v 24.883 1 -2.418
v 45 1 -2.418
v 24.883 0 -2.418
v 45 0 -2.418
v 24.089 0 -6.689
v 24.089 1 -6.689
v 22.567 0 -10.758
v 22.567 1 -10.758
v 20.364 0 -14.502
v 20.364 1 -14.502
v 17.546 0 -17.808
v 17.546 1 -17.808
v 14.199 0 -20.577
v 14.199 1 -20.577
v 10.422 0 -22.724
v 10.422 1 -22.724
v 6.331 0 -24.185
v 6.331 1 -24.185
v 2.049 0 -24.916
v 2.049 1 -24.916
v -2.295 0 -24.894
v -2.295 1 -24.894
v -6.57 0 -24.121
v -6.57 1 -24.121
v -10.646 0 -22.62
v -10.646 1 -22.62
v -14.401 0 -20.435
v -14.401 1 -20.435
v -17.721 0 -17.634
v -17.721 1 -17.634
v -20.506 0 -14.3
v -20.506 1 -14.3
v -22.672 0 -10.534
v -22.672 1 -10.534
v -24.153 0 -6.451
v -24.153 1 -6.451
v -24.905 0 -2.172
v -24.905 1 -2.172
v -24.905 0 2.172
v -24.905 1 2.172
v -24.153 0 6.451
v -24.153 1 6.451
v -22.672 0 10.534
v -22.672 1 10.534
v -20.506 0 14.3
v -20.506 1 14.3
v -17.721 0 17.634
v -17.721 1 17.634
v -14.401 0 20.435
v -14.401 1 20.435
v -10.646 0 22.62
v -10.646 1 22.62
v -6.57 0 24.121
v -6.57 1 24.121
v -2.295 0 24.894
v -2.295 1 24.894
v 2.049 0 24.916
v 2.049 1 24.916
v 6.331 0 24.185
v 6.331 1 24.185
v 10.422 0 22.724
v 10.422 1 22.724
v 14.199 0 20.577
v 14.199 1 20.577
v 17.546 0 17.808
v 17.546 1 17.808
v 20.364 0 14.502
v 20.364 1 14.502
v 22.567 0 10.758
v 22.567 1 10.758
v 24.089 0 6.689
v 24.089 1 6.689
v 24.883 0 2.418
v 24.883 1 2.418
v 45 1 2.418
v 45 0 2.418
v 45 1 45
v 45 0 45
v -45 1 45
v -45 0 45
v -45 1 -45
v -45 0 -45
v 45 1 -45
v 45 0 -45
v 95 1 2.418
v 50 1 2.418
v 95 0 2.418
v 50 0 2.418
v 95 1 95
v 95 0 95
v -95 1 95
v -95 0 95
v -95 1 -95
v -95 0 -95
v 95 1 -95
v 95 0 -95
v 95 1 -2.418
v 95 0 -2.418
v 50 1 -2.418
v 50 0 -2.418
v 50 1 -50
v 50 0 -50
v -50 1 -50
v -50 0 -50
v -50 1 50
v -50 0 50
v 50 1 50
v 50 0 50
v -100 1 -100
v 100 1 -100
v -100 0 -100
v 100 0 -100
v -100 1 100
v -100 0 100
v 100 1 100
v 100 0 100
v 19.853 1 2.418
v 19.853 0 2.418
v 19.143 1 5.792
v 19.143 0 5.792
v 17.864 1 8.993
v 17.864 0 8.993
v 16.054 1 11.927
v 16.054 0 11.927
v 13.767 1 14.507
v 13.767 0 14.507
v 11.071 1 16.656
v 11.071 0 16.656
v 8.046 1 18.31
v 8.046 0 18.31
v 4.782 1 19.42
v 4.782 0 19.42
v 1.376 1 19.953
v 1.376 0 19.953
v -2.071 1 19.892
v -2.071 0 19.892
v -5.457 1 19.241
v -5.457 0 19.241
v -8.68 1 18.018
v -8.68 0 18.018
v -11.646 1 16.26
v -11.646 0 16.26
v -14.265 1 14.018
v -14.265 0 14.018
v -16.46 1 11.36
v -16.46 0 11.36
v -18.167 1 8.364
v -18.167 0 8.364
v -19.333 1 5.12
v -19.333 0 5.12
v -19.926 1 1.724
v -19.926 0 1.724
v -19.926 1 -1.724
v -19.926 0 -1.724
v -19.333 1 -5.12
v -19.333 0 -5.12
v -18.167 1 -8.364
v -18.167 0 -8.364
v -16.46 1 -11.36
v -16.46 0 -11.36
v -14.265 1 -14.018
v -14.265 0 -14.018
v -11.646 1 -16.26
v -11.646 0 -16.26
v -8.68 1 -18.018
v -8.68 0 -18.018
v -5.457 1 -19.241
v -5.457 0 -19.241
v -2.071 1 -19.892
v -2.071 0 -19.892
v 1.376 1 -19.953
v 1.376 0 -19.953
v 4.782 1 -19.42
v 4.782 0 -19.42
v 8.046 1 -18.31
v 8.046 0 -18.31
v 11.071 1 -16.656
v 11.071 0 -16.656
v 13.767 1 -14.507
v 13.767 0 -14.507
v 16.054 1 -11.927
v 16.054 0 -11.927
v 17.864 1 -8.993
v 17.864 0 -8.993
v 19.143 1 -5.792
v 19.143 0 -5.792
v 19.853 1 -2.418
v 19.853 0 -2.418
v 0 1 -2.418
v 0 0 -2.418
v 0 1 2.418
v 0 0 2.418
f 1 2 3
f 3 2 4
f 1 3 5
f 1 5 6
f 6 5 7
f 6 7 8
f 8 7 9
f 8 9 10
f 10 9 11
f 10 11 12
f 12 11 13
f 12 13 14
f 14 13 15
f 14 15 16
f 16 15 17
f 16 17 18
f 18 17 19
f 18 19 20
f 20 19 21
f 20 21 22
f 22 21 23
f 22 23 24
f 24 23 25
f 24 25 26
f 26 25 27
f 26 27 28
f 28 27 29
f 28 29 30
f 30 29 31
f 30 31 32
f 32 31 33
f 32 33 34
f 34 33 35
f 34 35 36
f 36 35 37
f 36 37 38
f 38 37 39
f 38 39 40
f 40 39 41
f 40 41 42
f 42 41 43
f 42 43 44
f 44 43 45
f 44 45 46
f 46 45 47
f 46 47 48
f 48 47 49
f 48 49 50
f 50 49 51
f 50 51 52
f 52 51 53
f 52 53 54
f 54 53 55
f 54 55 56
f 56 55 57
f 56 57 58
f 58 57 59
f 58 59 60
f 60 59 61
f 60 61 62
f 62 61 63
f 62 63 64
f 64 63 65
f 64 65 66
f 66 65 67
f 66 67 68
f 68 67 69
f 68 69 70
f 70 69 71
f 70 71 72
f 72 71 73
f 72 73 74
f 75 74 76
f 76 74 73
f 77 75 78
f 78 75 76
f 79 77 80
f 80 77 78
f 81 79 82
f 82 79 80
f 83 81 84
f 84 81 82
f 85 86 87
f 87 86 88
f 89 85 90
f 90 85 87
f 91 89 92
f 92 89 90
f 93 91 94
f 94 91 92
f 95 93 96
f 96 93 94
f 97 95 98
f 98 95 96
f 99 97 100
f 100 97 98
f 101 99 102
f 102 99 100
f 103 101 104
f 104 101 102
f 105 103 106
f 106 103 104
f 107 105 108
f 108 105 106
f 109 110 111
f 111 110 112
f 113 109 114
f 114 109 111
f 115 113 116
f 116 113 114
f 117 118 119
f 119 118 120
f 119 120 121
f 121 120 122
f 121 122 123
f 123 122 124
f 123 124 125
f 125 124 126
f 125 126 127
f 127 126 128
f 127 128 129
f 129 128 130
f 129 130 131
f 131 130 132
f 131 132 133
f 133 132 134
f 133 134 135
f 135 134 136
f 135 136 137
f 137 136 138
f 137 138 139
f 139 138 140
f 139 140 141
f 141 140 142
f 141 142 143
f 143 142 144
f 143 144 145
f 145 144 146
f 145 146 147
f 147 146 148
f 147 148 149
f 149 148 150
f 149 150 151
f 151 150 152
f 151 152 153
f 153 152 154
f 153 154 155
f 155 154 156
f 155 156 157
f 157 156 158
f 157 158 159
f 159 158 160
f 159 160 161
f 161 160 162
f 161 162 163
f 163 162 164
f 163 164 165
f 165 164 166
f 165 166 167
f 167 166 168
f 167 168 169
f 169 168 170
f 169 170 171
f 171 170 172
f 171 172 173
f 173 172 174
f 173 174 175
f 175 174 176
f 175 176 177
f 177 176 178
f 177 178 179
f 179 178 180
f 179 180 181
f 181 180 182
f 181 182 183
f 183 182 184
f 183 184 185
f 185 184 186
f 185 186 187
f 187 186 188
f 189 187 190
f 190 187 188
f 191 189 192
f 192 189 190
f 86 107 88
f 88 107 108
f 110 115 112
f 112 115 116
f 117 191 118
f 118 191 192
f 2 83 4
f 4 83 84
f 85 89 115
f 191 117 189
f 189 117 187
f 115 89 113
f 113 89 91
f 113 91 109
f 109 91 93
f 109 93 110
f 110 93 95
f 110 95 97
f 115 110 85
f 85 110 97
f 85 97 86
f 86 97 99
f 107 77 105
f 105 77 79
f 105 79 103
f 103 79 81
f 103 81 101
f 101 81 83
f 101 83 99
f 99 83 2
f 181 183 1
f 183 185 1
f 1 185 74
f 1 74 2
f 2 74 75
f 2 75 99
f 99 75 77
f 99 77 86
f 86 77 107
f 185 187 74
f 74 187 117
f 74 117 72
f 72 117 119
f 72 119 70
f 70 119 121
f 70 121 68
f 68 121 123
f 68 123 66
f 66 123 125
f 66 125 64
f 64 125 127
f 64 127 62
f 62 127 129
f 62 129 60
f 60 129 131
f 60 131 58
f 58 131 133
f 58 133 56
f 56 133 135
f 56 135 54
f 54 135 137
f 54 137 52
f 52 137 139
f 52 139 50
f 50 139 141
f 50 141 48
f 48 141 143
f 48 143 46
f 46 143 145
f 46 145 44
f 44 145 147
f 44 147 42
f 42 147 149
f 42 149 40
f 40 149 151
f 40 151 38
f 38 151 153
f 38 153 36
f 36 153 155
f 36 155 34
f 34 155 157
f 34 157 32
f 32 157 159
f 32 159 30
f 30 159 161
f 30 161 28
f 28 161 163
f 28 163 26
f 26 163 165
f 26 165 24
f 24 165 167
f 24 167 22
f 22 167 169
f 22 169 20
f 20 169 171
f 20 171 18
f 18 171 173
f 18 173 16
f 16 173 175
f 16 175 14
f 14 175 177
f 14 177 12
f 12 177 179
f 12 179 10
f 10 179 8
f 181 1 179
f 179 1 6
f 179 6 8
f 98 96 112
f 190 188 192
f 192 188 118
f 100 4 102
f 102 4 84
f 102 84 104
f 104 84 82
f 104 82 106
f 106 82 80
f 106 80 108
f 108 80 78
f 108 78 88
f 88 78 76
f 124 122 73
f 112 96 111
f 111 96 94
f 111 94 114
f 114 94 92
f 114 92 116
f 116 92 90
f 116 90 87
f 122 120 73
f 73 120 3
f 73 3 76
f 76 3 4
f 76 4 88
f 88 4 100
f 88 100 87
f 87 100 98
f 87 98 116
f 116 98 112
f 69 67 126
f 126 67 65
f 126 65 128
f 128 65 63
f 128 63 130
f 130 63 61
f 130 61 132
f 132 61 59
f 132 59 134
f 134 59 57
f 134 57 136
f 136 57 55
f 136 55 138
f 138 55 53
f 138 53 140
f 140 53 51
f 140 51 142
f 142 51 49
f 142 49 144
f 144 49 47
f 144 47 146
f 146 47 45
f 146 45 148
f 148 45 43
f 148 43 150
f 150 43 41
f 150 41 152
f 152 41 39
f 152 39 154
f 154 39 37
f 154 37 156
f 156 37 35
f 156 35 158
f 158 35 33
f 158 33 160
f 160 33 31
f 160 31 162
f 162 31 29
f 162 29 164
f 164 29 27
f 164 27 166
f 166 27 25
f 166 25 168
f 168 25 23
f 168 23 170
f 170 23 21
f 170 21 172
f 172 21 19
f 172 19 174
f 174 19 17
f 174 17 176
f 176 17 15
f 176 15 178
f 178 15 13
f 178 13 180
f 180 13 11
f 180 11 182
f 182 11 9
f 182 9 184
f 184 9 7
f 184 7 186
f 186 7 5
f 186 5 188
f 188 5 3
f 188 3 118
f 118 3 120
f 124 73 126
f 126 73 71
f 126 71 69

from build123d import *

# Parameters (mm, degrees)
SKIZZE1_W                       = 200
SKIZZE1_H                       = 200
AUFSATZ_LINEAR_AUSTRAGEN1_DEPTH = 1


with BuildPart() as part:
    # Skizze1 → Aufsatz-Linear austragen1 (new body)
    with BuildSketch(Plane(origin=(0, 0, 0), x_dir=(1, 0, 0), z_dir=(0, 1, 0))):
        Rectangle(SKIZZE1_W, SKIZZE1_H)
        Polygon((95, 95), (-95, 95), (-95, -95), (95, -95), (95, -2.417862988), (50, -2.417862988), (50, -50), (-50, -50), (-50, 50), (50, 50), (50, 2.417862988), (95, 2.417862988), align=None, mode=Mode.SUBTRACT)
        with BuildLine():
            Line((45, 45), (-45, 45))
            Line((-45, 45), (-45, -45))
            Line((-45, -45), (45, -45))
            Line((45, -45), (45, -2.417862988))
            Line((45, -2.417862988), (24.882804074, -2.417862988))
            ThreePointArc((24.882804074, -2.417862988), (-25, 0), (24.882804074, 2.417862988))
            Line((24.882804074, 2.417862988), (45, 2.417862988))
            Line((45, 2.417862988), (45, 45))
        make_face(mode=Mode.SUBTRACT)
        with BuildLine():
            Line((0, -2.417862988), (19.853310519, -2.417862988))
            ThreePointArc((19.853310519, -2.417862988), (-20, 0), (19.853310519, 2.417862988))
            Line((19.853310519, 2.417862988), (0, 2.417862988))
            Line((0, 2.417862988), (0, -2.417862988))
        make_face(mode=Mode.SUBTRACT)
    extrude(amount=AUFSATZ_LINEAR_AUSTRAGEN1_DEPTH)


solid = part.part
